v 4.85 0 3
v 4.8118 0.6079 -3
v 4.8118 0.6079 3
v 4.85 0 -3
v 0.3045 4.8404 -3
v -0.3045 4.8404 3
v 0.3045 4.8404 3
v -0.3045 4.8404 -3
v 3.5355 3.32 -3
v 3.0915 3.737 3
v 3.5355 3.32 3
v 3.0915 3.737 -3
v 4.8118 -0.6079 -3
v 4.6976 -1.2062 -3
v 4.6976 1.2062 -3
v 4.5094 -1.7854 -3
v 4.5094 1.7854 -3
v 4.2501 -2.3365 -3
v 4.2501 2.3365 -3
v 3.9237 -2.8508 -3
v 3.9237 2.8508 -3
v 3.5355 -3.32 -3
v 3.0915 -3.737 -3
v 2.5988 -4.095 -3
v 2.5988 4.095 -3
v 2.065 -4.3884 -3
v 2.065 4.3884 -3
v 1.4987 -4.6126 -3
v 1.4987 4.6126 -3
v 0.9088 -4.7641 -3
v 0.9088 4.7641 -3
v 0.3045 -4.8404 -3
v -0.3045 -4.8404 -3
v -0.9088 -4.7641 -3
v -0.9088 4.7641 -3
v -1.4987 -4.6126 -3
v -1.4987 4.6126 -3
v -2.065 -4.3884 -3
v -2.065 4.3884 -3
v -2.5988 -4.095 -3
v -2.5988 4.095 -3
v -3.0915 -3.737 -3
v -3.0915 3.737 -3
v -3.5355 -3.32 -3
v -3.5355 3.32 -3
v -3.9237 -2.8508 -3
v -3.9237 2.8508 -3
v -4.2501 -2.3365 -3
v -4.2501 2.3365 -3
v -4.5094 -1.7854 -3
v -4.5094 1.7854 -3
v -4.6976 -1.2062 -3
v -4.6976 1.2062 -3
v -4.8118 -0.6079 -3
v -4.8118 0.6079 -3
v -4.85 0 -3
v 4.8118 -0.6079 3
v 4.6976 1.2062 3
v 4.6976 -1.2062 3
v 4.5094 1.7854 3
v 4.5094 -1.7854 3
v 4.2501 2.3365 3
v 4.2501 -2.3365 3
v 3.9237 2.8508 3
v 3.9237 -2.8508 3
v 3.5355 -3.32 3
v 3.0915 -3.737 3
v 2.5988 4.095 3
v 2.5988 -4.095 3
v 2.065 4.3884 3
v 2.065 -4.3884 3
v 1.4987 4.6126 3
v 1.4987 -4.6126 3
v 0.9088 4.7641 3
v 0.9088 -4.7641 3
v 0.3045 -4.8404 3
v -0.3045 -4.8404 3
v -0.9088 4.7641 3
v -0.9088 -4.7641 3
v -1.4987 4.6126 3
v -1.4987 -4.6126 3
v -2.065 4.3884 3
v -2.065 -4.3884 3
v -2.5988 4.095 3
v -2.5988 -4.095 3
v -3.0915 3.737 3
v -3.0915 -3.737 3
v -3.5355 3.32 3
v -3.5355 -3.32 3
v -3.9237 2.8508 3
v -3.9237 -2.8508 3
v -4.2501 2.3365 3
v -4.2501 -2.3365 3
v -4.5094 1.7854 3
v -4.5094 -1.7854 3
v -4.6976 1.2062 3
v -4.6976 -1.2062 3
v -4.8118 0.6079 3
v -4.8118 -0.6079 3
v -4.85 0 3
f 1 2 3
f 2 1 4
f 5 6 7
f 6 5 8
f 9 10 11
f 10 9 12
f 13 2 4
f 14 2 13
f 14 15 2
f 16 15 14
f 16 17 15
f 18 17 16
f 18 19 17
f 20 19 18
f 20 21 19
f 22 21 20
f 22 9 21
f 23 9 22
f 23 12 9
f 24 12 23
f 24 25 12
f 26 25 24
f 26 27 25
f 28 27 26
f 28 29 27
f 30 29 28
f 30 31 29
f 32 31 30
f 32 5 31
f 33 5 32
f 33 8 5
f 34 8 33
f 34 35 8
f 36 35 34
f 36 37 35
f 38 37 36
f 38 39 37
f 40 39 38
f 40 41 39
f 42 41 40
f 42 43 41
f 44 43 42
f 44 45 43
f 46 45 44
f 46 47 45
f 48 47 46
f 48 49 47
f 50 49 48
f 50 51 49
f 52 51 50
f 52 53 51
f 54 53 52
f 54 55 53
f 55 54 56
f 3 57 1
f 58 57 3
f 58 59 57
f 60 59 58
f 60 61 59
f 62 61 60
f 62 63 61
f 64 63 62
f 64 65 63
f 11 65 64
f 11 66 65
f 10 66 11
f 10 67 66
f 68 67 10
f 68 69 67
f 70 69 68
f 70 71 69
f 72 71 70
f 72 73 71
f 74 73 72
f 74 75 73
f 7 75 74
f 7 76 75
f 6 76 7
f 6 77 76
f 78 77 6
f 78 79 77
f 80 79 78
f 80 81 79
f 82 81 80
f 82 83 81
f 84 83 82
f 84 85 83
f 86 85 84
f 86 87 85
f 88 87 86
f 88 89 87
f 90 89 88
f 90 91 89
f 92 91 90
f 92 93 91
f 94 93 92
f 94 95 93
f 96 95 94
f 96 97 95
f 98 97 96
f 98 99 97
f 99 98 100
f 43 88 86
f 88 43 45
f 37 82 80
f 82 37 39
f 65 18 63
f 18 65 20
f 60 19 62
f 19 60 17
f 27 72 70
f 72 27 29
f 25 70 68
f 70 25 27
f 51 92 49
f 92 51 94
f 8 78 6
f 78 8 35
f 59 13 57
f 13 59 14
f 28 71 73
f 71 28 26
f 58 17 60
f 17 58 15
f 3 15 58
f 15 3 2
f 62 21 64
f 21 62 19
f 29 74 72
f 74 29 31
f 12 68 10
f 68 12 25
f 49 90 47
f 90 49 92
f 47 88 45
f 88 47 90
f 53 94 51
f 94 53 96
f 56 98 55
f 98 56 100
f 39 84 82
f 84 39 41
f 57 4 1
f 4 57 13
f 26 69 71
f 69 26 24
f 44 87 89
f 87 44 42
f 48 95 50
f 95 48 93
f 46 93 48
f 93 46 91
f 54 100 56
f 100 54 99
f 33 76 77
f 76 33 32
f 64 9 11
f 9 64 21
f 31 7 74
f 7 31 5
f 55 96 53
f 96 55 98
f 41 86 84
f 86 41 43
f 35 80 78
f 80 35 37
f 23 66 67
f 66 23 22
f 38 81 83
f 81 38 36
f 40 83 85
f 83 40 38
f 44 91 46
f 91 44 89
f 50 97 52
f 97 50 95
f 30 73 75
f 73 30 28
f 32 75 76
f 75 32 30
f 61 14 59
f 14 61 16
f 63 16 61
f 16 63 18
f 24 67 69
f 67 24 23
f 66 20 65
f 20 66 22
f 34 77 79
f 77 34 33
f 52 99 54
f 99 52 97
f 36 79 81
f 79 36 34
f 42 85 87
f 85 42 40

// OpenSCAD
$fn = 50;


difference() {
	union() {
		translate(v = [0, 0, -3.0000000000]) {
			cylinder(h = 6, r = 4.8500000000);
		}
	}
	union() {
		translate(v = [0, 0, -100.0000000000]) {
			cylinder(h = 200, r = 0);
		}
	}
}
